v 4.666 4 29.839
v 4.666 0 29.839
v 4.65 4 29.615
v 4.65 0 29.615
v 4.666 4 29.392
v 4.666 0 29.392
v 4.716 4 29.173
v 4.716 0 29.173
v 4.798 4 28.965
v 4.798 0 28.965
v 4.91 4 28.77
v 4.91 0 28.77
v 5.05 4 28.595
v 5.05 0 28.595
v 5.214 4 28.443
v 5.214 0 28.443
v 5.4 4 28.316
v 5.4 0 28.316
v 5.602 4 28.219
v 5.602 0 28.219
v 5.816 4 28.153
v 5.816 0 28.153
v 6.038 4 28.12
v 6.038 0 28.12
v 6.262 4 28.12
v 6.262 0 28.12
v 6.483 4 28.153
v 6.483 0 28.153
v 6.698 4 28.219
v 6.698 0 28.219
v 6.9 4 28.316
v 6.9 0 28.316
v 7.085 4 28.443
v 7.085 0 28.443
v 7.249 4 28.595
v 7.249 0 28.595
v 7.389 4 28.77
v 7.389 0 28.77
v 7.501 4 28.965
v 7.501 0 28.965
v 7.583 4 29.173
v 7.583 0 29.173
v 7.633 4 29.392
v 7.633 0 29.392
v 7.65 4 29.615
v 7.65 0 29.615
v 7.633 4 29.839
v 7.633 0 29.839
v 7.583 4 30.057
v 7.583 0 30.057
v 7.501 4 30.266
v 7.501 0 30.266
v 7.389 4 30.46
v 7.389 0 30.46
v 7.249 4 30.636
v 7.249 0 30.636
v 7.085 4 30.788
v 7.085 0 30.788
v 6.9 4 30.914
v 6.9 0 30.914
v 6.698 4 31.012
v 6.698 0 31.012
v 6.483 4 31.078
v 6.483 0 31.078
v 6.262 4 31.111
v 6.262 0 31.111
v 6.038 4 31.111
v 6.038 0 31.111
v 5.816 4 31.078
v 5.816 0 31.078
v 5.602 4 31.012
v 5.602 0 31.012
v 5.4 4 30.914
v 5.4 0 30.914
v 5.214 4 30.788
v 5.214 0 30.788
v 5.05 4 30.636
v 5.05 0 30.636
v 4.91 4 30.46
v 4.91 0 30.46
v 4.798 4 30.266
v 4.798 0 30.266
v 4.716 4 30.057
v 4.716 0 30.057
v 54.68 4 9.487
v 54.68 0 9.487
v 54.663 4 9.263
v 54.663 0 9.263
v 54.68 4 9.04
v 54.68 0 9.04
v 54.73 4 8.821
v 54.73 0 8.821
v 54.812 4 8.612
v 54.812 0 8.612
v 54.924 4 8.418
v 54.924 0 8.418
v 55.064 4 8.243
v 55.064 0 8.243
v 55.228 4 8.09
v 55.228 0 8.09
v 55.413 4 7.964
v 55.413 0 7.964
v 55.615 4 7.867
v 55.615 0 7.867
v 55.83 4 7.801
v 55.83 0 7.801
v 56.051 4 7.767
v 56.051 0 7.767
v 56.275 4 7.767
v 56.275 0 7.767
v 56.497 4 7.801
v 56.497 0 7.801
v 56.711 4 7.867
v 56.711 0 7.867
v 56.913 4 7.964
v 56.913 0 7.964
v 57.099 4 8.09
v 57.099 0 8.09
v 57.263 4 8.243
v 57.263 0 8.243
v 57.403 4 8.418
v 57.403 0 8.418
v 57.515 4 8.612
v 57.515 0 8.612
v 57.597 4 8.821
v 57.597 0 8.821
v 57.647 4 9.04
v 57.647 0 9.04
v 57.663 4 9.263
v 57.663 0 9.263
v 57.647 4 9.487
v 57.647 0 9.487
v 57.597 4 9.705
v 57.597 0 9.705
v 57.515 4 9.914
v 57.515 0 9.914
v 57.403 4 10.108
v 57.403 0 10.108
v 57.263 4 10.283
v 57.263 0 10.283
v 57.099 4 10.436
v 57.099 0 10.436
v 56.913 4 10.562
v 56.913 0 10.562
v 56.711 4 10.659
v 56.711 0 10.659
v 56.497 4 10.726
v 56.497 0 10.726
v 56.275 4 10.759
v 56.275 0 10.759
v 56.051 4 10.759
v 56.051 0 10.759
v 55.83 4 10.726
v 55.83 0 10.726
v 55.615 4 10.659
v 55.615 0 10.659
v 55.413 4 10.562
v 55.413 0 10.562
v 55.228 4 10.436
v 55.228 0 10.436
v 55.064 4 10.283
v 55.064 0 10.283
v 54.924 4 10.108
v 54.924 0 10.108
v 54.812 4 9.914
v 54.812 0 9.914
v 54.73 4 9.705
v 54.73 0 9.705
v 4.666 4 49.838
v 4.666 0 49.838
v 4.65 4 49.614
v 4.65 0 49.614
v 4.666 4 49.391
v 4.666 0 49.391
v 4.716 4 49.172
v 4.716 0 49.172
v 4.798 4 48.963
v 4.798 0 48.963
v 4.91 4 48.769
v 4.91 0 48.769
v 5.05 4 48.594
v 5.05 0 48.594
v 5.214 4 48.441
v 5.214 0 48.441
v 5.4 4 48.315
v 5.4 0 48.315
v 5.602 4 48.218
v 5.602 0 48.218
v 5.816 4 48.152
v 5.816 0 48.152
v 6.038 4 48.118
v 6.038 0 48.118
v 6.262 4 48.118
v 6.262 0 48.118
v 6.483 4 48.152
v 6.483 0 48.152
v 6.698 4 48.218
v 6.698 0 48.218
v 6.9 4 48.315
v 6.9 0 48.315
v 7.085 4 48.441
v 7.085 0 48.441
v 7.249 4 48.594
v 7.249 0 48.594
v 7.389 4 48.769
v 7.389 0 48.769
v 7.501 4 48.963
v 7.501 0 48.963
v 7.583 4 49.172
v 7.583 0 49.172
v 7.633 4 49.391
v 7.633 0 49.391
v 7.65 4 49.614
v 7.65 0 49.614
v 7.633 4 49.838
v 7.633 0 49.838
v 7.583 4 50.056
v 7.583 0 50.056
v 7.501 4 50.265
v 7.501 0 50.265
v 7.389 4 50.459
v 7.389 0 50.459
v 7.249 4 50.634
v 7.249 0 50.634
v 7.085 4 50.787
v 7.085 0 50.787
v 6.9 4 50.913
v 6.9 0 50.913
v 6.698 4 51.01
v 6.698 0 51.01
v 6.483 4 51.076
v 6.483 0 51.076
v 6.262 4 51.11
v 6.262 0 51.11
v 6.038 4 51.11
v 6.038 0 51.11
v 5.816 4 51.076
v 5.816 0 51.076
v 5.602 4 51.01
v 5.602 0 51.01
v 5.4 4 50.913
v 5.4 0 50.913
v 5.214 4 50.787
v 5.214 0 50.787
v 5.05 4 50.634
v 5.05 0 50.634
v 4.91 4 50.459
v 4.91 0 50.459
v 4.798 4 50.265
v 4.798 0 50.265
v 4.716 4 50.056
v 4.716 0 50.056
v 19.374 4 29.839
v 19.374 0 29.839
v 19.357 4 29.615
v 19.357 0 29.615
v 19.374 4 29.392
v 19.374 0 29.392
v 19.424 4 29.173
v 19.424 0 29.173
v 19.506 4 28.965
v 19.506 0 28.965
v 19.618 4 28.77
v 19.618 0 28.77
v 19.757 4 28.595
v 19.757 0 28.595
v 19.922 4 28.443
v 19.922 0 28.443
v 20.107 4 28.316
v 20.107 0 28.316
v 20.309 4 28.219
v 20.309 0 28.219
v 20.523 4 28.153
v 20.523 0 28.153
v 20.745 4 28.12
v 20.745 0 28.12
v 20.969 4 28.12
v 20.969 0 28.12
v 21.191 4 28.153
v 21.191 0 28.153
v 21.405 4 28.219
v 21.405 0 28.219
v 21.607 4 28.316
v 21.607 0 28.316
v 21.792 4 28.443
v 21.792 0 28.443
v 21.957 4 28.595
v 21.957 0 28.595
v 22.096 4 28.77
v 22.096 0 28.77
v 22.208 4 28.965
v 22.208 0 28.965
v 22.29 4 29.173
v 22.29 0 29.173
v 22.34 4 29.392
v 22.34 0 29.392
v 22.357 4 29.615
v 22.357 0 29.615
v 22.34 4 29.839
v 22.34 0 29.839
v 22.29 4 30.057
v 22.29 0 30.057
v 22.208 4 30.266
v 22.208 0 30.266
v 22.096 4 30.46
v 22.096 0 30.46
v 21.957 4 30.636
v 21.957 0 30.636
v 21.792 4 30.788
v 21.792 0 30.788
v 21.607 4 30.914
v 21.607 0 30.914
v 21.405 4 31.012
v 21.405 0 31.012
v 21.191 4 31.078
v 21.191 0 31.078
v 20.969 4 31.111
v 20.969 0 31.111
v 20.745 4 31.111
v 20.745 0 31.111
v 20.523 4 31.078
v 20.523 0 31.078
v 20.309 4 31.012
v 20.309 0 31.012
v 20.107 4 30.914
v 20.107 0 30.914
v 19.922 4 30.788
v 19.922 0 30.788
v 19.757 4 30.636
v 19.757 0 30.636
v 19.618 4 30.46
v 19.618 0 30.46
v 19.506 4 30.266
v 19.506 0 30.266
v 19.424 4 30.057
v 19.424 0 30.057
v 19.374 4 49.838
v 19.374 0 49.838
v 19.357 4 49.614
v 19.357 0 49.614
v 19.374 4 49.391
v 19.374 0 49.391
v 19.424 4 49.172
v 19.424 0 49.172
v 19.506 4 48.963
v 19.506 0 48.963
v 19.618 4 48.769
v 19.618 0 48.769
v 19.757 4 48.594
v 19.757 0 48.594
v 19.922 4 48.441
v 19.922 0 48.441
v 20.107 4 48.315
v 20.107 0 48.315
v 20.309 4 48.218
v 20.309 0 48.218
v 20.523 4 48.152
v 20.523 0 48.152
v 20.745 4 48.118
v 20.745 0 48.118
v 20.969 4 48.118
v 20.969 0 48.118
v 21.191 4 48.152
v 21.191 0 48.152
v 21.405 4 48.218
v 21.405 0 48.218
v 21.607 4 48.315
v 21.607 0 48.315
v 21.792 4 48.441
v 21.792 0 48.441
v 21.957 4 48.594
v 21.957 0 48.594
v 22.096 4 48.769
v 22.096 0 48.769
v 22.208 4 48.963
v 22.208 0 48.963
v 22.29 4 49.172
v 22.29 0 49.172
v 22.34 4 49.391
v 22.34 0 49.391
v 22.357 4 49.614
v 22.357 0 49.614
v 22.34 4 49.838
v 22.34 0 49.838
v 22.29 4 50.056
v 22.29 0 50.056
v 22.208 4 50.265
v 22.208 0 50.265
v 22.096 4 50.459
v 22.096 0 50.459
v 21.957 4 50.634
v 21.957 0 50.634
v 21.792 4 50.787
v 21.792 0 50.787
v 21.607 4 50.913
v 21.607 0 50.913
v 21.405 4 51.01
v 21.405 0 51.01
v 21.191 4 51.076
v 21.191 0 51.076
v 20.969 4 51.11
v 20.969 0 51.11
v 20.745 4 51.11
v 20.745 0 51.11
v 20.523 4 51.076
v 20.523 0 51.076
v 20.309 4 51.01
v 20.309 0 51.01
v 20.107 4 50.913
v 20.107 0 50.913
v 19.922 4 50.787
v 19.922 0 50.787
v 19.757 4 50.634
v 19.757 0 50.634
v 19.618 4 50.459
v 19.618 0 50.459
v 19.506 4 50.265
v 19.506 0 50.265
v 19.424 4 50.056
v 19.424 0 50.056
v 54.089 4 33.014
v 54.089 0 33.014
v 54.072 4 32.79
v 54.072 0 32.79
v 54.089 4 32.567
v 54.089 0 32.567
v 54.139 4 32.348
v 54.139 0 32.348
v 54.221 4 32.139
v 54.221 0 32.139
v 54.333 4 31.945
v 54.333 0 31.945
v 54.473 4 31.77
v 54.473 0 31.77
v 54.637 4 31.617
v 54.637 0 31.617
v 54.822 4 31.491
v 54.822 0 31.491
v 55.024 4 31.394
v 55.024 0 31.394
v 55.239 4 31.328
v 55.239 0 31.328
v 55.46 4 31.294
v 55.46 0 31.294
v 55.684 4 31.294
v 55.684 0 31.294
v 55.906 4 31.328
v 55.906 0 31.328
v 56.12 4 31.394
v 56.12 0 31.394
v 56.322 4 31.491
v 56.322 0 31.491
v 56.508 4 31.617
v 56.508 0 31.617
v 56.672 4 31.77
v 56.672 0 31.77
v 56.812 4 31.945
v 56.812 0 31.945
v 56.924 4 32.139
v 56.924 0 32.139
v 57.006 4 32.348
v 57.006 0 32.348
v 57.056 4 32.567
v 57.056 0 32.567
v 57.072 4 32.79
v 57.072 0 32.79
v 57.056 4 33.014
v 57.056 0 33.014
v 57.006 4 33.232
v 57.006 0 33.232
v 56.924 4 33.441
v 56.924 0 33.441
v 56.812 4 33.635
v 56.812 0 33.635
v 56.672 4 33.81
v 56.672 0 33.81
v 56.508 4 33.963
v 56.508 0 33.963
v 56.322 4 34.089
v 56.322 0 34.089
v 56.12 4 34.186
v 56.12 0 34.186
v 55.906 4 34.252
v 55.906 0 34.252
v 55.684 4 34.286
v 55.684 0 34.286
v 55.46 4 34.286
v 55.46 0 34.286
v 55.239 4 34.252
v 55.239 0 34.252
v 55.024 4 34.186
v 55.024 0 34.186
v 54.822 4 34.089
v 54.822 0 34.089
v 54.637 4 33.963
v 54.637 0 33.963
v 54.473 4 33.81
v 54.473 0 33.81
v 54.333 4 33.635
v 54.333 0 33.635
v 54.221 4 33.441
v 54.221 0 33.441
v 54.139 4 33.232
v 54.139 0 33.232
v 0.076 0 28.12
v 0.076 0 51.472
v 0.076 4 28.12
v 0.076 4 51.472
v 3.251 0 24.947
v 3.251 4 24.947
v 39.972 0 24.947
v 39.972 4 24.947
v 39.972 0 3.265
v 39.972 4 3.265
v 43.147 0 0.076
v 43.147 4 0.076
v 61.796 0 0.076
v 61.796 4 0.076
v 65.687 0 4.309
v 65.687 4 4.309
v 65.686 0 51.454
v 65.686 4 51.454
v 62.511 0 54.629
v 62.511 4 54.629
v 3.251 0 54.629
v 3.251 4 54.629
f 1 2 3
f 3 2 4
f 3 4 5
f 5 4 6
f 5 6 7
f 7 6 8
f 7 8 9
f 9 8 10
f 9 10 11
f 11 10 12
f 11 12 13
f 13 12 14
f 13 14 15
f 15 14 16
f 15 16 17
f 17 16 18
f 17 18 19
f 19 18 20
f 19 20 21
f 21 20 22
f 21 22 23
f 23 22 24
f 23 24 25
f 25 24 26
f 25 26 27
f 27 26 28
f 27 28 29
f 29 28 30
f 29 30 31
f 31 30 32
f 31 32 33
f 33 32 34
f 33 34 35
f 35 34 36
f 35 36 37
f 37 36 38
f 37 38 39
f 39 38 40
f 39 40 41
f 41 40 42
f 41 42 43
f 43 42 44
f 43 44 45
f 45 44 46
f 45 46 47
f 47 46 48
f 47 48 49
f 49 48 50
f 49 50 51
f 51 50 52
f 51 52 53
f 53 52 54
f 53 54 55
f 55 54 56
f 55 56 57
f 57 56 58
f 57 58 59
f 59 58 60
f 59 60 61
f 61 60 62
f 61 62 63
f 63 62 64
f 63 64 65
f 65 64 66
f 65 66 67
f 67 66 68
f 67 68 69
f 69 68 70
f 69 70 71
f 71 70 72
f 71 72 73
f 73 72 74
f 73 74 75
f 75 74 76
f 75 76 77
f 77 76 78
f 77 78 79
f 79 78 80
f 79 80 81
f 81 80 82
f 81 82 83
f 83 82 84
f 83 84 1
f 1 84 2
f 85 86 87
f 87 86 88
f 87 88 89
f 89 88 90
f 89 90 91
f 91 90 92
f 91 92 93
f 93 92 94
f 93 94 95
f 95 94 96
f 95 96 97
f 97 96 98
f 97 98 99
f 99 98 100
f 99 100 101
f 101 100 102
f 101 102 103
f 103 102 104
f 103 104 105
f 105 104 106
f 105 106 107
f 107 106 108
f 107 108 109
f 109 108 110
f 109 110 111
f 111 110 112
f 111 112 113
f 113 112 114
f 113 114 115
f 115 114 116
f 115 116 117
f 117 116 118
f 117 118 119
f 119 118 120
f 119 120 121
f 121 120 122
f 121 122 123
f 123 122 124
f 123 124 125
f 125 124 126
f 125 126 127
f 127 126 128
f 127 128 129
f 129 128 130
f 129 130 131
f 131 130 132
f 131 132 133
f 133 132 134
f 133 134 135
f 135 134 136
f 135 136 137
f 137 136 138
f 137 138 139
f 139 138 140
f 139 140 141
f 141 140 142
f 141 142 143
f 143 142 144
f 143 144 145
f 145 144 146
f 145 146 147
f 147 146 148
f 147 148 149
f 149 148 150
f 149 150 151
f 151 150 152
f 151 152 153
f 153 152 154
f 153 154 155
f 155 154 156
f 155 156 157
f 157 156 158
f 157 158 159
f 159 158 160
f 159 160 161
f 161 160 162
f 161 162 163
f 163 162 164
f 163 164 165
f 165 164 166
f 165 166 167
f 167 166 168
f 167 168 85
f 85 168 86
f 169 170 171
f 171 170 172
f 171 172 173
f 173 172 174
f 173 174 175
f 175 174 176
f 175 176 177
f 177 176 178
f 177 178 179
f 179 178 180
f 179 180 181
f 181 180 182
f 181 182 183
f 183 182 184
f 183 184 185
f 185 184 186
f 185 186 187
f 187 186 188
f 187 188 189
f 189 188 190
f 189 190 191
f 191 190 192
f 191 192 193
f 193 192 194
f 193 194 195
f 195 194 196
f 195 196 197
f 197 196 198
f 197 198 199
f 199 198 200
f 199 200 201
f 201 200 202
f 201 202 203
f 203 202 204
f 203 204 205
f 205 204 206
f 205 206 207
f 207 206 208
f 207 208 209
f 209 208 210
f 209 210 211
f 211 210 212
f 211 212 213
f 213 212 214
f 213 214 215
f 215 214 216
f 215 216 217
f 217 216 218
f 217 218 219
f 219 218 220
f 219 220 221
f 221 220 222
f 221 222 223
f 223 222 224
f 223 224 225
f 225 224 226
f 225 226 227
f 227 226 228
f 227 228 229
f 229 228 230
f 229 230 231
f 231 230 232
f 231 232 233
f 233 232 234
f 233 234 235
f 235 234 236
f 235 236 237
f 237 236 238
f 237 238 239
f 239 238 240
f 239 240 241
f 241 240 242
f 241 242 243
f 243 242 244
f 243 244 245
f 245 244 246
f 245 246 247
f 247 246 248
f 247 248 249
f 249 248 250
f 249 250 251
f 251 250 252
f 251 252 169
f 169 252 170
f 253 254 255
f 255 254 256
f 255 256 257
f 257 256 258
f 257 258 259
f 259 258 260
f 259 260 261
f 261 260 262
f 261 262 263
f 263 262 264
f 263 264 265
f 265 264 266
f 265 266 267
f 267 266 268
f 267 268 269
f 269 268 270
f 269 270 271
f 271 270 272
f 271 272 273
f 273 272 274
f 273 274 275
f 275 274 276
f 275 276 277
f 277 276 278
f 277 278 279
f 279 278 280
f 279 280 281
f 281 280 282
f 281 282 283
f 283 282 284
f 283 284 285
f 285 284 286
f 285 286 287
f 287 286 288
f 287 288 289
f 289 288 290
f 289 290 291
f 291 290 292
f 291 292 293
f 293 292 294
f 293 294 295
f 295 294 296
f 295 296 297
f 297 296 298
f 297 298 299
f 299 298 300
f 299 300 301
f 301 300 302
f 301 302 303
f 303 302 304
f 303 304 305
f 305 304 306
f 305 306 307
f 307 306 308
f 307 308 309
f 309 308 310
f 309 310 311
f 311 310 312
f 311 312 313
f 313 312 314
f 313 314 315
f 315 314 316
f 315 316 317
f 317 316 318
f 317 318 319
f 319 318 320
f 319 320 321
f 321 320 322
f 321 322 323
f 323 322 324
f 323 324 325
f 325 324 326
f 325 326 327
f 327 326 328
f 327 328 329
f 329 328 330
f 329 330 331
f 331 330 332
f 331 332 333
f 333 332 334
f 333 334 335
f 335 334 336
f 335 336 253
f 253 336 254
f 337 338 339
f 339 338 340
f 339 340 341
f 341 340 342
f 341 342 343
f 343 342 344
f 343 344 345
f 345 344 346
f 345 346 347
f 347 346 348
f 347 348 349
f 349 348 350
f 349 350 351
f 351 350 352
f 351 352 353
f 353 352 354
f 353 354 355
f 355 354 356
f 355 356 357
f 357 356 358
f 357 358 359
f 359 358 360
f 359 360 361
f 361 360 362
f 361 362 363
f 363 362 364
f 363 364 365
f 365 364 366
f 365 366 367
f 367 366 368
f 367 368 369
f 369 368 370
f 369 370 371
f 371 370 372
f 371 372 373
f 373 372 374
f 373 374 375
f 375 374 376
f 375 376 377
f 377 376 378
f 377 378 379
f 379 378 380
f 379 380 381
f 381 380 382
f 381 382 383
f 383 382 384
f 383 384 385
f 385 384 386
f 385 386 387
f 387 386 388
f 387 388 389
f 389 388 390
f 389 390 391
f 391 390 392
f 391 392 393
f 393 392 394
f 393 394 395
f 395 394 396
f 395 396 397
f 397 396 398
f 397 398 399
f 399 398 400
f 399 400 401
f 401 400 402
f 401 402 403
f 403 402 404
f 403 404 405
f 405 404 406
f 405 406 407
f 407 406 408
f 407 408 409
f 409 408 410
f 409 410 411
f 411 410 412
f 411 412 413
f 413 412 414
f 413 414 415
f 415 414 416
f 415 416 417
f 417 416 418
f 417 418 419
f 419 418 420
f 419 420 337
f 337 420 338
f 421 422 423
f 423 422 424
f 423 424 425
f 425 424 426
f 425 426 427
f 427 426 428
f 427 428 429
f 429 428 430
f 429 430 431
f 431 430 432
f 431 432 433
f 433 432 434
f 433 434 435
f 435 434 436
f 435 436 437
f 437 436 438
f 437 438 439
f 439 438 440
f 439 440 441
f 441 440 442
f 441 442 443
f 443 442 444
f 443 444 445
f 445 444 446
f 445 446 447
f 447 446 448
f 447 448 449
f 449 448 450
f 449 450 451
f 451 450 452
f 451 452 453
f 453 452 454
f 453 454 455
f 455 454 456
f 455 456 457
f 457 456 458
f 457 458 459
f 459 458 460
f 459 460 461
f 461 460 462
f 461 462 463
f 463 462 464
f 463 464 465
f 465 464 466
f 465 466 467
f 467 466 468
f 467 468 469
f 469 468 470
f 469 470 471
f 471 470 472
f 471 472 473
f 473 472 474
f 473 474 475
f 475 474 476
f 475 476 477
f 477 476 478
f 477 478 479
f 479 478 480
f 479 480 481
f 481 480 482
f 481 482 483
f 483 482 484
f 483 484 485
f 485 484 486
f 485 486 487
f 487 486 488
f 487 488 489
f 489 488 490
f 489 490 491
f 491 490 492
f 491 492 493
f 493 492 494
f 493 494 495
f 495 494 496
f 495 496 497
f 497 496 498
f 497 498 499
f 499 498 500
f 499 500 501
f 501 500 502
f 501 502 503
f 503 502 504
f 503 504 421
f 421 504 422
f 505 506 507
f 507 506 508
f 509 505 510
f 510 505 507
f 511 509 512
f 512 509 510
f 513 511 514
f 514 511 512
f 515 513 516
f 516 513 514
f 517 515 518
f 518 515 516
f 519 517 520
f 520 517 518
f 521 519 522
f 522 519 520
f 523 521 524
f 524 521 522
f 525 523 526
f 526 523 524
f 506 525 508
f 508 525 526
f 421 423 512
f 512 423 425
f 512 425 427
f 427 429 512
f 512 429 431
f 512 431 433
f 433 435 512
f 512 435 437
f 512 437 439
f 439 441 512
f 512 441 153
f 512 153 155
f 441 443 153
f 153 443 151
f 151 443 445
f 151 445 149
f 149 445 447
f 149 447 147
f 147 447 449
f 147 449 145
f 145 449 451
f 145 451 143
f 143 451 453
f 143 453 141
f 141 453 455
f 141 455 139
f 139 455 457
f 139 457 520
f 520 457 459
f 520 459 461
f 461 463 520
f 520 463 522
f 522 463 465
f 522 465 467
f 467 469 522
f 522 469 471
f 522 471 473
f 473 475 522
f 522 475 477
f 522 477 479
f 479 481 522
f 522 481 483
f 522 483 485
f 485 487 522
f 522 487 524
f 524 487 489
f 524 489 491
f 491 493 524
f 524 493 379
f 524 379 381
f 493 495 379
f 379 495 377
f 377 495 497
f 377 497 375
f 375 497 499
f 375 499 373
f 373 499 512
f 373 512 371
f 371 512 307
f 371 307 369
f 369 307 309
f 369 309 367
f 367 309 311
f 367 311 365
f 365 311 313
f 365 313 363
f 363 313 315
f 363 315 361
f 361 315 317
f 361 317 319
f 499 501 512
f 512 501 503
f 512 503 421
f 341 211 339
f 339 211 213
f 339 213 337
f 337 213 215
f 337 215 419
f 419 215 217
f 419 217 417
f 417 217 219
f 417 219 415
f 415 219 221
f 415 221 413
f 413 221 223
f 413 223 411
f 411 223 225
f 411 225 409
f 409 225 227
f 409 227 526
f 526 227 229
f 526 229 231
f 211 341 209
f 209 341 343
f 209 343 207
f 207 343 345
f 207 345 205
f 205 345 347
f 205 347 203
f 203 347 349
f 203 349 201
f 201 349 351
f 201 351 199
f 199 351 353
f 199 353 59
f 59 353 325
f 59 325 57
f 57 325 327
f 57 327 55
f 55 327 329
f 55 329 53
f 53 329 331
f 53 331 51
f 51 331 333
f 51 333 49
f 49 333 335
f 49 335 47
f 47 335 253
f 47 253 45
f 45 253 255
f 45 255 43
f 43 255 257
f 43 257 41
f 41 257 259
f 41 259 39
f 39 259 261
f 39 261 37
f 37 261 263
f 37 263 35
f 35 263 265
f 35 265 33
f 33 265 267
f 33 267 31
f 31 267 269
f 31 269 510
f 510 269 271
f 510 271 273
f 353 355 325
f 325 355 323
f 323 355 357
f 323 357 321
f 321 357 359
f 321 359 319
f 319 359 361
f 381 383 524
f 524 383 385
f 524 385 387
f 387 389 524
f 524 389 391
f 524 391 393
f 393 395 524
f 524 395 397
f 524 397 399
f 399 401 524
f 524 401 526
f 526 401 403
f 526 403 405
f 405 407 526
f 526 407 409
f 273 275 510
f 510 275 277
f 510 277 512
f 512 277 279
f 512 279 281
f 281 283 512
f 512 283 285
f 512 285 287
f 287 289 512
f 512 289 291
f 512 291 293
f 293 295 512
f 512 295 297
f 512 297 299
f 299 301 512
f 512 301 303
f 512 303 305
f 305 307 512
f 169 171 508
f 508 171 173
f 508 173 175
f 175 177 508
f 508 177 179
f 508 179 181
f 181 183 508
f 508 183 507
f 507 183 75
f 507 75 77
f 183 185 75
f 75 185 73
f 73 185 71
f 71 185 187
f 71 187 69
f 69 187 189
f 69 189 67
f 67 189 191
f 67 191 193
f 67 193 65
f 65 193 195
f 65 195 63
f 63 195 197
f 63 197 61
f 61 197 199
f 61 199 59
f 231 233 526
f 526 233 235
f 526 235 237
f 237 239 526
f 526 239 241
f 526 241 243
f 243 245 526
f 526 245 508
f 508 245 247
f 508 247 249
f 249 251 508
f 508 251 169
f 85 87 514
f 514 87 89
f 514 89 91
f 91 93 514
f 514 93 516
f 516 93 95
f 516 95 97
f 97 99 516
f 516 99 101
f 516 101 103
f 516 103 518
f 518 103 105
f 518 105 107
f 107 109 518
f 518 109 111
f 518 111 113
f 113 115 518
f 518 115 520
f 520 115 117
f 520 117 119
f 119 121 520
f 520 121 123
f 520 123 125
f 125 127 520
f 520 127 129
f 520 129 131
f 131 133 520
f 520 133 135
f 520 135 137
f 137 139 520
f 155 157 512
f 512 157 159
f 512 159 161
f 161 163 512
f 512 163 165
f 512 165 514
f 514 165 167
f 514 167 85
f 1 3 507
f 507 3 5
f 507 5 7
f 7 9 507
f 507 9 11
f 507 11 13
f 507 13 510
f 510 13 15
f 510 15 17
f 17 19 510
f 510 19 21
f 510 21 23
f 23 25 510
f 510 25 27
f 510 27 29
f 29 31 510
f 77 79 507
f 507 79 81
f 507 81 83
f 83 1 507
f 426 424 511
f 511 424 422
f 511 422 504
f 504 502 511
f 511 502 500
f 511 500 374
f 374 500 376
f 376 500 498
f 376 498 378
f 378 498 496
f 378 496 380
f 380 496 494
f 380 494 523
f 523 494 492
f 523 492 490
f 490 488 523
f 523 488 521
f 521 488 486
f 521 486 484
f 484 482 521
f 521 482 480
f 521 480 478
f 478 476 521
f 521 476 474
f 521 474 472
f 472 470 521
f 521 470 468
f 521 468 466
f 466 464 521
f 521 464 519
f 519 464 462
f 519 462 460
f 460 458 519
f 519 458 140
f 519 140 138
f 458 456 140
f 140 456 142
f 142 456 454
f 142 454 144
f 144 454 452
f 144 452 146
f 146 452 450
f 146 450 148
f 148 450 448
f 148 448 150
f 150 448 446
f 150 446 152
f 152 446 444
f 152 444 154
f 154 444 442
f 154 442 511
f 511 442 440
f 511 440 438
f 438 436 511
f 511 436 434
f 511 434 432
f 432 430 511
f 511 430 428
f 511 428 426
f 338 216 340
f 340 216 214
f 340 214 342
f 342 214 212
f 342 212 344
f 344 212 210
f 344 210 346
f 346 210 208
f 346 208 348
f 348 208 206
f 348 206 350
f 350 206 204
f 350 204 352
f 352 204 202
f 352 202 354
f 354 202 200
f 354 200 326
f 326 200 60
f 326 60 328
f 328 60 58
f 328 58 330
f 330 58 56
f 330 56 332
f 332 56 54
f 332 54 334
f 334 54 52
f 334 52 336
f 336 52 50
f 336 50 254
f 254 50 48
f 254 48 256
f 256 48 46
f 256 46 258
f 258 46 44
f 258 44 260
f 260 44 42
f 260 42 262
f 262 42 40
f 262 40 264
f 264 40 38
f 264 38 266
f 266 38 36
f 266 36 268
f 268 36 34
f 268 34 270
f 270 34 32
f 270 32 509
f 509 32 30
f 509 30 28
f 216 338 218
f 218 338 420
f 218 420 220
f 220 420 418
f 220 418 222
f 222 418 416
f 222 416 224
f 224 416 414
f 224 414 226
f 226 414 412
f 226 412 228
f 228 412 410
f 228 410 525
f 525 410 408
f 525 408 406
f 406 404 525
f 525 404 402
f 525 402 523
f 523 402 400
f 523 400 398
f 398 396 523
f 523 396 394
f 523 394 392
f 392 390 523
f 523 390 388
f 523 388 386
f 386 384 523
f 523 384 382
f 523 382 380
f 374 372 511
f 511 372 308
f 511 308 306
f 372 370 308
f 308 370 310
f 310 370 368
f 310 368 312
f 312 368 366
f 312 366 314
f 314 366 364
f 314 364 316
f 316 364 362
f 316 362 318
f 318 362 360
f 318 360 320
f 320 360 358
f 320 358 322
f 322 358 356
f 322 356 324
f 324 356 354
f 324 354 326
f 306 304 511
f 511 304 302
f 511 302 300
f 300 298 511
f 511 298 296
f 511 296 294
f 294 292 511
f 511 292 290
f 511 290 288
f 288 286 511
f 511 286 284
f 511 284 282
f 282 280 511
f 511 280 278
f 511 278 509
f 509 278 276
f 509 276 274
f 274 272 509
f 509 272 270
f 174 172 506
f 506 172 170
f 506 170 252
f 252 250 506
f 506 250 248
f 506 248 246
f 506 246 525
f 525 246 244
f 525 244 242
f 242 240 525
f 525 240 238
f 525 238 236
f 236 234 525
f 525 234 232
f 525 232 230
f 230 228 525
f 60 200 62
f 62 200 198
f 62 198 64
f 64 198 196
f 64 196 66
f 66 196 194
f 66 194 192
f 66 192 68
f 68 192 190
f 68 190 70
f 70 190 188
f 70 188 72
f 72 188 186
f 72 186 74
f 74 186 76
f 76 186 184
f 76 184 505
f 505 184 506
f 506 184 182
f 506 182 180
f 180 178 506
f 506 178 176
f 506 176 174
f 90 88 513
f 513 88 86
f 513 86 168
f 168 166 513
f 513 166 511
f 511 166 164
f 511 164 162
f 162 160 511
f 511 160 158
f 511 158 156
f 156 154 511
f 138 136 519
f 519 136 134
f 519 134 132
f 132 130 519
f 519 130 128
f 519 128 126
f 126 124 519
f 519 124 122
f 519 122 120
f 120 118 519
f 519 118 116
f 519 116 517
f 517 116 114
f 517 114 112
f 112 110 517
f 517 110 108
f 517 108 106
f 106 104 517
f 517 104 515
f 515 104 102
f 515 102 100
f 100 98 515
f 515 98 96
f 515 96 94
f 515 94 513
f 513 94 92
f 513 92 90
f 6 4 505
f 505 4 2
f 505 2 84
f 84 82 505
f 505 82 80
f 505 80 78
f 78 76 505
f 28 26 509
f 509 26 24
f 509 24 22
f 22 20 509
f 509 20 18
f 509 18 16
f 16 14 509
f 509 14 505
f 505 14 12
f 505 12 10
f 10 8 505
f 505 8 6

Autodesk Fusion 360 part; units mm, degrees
sketch "Skizze1" plane through (0, 0, 0) normal (0, 1, 0) x (1, 0, 0)
  line L0 (0.076, -28.1203) -> (3.2508, -24.9466)
  line L1 (3.2508, -24.9466) -> (39.9722, -24.9466)
  line L2 (39.9722, -24.9466) -> (39.9722, -3.2655)
  line L3 (39.9722, -3.2655) -> (43.147, -0.076)
  line L4 (43.147, -0.076) -> (61.7964, -0.076)
  line L5 (61.7964, -0.076) -> (65.6865, -4.3091)
  line L6 (65.6865, -4.3091) -> (65.6863, -51.4541)
  line L7 (65.6863, -51.4541) -> (62.5115, -54.6291)
  line L8 (62.5115, -54.6291) -> (3.2509, -54.6291)
  line L9 (3.2509, -54.6291) -> (0.0761, -51.4721)
  line L10 (0.0761, -51.4721) -> (0.076, -28.1203)
  circle A0 centre (6.1496, -29.6153) radius 2.4004
  circle A1 centre (20.857, -29.6153) radius 2.4004
  circle A2 centre (6.1496, -49.6141) radius 2.4004
  circle A3 centre (20.857, -49.6141) radius 2.4004
  circle A4 centre (55.5723, -32.7901) radius 2.4004
  circle A5 centre (56.1634, -9.2632) radius 2.4004
  circle A6 centre (6.1496, -29.6153) radius 1.5
  circle A7 centre (6.1496, -49.6141) radius 1.5
  circle A8 centre (20.857, -29.6153) radius 1.5
  circle A9 centre (20.857, -49.6141) radius 1.5
  circle A10 centre (56.1634, -9.2632) radius 1.5
  circle A11 centre (55.5723, -32.7901) radius 1.5
  point P0 (8.55, -29.6153)
  point P1 (23.2574, -29.6153)
  point P2 (8.55, -49.6141)
  point P3 (23.2574, -49.6141)
  point P4 (57.9727, -32.7901)
  point P5 (58.5638, -9.2632)
  dimension "d1" = 3
  dimension "d2" = 3
  dimension "d3" = 3
  dimension "d4" = 3
  dimension "d5" = 3
  dimension "d6" = 3
extrude "Extrusion1" add sketch "Skizze1" along normal blind 4 contours L0 L1 L2 L3 L4 L5 L6 L7 L8 L9 L10 | A0 | A1 | A2 | A3 | A4 | A5
sketch "Skizze2" plane through (0, 4, 0) normal (0, 1, 0) x (-1, 0, 0)
  circle A0 centre (-55.5723, 32.7901) radius 1.5
  circle A1 centre (-20.857, 49.6141) radius 1.5
  circle A2 centre (-20.857, 29.6153) radius 1.5
  circle A3 centre (-6.1496, 49.6141) radius 1.5
  circle A4 centre (-56.1634, 9.2632) radius 1.5
  circle A5 centre (-6.1496, 29.6153) radius 1.5
  line L0 (-0.0761, 51.4721) -> (-3.2509, 54.6291)
  line L1 (-3.2509, 54.6291) -> (-62.5115, 54.6291)
  line L2 (-62.5115, 54.6291) -> (-65.6863, 51.4541)
  line L3 (-65.6863, 51.4541) -> (-65.6865, 4.3091)
  line L4 (-65.6865, 4.3091) -> (-61.7964, 0.076)
  line L5 (-61.7964, 0.076) -> (-43.147, 0.076)
  line L6 (-43.147, 0.076) -> (-39.9722, 3.2655)
  line L7 (-39.9722, 3.2655) -> (-39.9722, 24.9466)
  line L8 (-39.9722, 24.9466) -> (-3.2508, 24.9466)
  line L9 (-3.2508, 24.9466) -> (-0.076, 28.1203)
  line L10 (-0.076, 28.1203) -> (-0.0761, 51.4721)
sketch "Skizze3" plane through (0, 4, 0) normal (0, 1, 0) x (-1, 0, 0)
